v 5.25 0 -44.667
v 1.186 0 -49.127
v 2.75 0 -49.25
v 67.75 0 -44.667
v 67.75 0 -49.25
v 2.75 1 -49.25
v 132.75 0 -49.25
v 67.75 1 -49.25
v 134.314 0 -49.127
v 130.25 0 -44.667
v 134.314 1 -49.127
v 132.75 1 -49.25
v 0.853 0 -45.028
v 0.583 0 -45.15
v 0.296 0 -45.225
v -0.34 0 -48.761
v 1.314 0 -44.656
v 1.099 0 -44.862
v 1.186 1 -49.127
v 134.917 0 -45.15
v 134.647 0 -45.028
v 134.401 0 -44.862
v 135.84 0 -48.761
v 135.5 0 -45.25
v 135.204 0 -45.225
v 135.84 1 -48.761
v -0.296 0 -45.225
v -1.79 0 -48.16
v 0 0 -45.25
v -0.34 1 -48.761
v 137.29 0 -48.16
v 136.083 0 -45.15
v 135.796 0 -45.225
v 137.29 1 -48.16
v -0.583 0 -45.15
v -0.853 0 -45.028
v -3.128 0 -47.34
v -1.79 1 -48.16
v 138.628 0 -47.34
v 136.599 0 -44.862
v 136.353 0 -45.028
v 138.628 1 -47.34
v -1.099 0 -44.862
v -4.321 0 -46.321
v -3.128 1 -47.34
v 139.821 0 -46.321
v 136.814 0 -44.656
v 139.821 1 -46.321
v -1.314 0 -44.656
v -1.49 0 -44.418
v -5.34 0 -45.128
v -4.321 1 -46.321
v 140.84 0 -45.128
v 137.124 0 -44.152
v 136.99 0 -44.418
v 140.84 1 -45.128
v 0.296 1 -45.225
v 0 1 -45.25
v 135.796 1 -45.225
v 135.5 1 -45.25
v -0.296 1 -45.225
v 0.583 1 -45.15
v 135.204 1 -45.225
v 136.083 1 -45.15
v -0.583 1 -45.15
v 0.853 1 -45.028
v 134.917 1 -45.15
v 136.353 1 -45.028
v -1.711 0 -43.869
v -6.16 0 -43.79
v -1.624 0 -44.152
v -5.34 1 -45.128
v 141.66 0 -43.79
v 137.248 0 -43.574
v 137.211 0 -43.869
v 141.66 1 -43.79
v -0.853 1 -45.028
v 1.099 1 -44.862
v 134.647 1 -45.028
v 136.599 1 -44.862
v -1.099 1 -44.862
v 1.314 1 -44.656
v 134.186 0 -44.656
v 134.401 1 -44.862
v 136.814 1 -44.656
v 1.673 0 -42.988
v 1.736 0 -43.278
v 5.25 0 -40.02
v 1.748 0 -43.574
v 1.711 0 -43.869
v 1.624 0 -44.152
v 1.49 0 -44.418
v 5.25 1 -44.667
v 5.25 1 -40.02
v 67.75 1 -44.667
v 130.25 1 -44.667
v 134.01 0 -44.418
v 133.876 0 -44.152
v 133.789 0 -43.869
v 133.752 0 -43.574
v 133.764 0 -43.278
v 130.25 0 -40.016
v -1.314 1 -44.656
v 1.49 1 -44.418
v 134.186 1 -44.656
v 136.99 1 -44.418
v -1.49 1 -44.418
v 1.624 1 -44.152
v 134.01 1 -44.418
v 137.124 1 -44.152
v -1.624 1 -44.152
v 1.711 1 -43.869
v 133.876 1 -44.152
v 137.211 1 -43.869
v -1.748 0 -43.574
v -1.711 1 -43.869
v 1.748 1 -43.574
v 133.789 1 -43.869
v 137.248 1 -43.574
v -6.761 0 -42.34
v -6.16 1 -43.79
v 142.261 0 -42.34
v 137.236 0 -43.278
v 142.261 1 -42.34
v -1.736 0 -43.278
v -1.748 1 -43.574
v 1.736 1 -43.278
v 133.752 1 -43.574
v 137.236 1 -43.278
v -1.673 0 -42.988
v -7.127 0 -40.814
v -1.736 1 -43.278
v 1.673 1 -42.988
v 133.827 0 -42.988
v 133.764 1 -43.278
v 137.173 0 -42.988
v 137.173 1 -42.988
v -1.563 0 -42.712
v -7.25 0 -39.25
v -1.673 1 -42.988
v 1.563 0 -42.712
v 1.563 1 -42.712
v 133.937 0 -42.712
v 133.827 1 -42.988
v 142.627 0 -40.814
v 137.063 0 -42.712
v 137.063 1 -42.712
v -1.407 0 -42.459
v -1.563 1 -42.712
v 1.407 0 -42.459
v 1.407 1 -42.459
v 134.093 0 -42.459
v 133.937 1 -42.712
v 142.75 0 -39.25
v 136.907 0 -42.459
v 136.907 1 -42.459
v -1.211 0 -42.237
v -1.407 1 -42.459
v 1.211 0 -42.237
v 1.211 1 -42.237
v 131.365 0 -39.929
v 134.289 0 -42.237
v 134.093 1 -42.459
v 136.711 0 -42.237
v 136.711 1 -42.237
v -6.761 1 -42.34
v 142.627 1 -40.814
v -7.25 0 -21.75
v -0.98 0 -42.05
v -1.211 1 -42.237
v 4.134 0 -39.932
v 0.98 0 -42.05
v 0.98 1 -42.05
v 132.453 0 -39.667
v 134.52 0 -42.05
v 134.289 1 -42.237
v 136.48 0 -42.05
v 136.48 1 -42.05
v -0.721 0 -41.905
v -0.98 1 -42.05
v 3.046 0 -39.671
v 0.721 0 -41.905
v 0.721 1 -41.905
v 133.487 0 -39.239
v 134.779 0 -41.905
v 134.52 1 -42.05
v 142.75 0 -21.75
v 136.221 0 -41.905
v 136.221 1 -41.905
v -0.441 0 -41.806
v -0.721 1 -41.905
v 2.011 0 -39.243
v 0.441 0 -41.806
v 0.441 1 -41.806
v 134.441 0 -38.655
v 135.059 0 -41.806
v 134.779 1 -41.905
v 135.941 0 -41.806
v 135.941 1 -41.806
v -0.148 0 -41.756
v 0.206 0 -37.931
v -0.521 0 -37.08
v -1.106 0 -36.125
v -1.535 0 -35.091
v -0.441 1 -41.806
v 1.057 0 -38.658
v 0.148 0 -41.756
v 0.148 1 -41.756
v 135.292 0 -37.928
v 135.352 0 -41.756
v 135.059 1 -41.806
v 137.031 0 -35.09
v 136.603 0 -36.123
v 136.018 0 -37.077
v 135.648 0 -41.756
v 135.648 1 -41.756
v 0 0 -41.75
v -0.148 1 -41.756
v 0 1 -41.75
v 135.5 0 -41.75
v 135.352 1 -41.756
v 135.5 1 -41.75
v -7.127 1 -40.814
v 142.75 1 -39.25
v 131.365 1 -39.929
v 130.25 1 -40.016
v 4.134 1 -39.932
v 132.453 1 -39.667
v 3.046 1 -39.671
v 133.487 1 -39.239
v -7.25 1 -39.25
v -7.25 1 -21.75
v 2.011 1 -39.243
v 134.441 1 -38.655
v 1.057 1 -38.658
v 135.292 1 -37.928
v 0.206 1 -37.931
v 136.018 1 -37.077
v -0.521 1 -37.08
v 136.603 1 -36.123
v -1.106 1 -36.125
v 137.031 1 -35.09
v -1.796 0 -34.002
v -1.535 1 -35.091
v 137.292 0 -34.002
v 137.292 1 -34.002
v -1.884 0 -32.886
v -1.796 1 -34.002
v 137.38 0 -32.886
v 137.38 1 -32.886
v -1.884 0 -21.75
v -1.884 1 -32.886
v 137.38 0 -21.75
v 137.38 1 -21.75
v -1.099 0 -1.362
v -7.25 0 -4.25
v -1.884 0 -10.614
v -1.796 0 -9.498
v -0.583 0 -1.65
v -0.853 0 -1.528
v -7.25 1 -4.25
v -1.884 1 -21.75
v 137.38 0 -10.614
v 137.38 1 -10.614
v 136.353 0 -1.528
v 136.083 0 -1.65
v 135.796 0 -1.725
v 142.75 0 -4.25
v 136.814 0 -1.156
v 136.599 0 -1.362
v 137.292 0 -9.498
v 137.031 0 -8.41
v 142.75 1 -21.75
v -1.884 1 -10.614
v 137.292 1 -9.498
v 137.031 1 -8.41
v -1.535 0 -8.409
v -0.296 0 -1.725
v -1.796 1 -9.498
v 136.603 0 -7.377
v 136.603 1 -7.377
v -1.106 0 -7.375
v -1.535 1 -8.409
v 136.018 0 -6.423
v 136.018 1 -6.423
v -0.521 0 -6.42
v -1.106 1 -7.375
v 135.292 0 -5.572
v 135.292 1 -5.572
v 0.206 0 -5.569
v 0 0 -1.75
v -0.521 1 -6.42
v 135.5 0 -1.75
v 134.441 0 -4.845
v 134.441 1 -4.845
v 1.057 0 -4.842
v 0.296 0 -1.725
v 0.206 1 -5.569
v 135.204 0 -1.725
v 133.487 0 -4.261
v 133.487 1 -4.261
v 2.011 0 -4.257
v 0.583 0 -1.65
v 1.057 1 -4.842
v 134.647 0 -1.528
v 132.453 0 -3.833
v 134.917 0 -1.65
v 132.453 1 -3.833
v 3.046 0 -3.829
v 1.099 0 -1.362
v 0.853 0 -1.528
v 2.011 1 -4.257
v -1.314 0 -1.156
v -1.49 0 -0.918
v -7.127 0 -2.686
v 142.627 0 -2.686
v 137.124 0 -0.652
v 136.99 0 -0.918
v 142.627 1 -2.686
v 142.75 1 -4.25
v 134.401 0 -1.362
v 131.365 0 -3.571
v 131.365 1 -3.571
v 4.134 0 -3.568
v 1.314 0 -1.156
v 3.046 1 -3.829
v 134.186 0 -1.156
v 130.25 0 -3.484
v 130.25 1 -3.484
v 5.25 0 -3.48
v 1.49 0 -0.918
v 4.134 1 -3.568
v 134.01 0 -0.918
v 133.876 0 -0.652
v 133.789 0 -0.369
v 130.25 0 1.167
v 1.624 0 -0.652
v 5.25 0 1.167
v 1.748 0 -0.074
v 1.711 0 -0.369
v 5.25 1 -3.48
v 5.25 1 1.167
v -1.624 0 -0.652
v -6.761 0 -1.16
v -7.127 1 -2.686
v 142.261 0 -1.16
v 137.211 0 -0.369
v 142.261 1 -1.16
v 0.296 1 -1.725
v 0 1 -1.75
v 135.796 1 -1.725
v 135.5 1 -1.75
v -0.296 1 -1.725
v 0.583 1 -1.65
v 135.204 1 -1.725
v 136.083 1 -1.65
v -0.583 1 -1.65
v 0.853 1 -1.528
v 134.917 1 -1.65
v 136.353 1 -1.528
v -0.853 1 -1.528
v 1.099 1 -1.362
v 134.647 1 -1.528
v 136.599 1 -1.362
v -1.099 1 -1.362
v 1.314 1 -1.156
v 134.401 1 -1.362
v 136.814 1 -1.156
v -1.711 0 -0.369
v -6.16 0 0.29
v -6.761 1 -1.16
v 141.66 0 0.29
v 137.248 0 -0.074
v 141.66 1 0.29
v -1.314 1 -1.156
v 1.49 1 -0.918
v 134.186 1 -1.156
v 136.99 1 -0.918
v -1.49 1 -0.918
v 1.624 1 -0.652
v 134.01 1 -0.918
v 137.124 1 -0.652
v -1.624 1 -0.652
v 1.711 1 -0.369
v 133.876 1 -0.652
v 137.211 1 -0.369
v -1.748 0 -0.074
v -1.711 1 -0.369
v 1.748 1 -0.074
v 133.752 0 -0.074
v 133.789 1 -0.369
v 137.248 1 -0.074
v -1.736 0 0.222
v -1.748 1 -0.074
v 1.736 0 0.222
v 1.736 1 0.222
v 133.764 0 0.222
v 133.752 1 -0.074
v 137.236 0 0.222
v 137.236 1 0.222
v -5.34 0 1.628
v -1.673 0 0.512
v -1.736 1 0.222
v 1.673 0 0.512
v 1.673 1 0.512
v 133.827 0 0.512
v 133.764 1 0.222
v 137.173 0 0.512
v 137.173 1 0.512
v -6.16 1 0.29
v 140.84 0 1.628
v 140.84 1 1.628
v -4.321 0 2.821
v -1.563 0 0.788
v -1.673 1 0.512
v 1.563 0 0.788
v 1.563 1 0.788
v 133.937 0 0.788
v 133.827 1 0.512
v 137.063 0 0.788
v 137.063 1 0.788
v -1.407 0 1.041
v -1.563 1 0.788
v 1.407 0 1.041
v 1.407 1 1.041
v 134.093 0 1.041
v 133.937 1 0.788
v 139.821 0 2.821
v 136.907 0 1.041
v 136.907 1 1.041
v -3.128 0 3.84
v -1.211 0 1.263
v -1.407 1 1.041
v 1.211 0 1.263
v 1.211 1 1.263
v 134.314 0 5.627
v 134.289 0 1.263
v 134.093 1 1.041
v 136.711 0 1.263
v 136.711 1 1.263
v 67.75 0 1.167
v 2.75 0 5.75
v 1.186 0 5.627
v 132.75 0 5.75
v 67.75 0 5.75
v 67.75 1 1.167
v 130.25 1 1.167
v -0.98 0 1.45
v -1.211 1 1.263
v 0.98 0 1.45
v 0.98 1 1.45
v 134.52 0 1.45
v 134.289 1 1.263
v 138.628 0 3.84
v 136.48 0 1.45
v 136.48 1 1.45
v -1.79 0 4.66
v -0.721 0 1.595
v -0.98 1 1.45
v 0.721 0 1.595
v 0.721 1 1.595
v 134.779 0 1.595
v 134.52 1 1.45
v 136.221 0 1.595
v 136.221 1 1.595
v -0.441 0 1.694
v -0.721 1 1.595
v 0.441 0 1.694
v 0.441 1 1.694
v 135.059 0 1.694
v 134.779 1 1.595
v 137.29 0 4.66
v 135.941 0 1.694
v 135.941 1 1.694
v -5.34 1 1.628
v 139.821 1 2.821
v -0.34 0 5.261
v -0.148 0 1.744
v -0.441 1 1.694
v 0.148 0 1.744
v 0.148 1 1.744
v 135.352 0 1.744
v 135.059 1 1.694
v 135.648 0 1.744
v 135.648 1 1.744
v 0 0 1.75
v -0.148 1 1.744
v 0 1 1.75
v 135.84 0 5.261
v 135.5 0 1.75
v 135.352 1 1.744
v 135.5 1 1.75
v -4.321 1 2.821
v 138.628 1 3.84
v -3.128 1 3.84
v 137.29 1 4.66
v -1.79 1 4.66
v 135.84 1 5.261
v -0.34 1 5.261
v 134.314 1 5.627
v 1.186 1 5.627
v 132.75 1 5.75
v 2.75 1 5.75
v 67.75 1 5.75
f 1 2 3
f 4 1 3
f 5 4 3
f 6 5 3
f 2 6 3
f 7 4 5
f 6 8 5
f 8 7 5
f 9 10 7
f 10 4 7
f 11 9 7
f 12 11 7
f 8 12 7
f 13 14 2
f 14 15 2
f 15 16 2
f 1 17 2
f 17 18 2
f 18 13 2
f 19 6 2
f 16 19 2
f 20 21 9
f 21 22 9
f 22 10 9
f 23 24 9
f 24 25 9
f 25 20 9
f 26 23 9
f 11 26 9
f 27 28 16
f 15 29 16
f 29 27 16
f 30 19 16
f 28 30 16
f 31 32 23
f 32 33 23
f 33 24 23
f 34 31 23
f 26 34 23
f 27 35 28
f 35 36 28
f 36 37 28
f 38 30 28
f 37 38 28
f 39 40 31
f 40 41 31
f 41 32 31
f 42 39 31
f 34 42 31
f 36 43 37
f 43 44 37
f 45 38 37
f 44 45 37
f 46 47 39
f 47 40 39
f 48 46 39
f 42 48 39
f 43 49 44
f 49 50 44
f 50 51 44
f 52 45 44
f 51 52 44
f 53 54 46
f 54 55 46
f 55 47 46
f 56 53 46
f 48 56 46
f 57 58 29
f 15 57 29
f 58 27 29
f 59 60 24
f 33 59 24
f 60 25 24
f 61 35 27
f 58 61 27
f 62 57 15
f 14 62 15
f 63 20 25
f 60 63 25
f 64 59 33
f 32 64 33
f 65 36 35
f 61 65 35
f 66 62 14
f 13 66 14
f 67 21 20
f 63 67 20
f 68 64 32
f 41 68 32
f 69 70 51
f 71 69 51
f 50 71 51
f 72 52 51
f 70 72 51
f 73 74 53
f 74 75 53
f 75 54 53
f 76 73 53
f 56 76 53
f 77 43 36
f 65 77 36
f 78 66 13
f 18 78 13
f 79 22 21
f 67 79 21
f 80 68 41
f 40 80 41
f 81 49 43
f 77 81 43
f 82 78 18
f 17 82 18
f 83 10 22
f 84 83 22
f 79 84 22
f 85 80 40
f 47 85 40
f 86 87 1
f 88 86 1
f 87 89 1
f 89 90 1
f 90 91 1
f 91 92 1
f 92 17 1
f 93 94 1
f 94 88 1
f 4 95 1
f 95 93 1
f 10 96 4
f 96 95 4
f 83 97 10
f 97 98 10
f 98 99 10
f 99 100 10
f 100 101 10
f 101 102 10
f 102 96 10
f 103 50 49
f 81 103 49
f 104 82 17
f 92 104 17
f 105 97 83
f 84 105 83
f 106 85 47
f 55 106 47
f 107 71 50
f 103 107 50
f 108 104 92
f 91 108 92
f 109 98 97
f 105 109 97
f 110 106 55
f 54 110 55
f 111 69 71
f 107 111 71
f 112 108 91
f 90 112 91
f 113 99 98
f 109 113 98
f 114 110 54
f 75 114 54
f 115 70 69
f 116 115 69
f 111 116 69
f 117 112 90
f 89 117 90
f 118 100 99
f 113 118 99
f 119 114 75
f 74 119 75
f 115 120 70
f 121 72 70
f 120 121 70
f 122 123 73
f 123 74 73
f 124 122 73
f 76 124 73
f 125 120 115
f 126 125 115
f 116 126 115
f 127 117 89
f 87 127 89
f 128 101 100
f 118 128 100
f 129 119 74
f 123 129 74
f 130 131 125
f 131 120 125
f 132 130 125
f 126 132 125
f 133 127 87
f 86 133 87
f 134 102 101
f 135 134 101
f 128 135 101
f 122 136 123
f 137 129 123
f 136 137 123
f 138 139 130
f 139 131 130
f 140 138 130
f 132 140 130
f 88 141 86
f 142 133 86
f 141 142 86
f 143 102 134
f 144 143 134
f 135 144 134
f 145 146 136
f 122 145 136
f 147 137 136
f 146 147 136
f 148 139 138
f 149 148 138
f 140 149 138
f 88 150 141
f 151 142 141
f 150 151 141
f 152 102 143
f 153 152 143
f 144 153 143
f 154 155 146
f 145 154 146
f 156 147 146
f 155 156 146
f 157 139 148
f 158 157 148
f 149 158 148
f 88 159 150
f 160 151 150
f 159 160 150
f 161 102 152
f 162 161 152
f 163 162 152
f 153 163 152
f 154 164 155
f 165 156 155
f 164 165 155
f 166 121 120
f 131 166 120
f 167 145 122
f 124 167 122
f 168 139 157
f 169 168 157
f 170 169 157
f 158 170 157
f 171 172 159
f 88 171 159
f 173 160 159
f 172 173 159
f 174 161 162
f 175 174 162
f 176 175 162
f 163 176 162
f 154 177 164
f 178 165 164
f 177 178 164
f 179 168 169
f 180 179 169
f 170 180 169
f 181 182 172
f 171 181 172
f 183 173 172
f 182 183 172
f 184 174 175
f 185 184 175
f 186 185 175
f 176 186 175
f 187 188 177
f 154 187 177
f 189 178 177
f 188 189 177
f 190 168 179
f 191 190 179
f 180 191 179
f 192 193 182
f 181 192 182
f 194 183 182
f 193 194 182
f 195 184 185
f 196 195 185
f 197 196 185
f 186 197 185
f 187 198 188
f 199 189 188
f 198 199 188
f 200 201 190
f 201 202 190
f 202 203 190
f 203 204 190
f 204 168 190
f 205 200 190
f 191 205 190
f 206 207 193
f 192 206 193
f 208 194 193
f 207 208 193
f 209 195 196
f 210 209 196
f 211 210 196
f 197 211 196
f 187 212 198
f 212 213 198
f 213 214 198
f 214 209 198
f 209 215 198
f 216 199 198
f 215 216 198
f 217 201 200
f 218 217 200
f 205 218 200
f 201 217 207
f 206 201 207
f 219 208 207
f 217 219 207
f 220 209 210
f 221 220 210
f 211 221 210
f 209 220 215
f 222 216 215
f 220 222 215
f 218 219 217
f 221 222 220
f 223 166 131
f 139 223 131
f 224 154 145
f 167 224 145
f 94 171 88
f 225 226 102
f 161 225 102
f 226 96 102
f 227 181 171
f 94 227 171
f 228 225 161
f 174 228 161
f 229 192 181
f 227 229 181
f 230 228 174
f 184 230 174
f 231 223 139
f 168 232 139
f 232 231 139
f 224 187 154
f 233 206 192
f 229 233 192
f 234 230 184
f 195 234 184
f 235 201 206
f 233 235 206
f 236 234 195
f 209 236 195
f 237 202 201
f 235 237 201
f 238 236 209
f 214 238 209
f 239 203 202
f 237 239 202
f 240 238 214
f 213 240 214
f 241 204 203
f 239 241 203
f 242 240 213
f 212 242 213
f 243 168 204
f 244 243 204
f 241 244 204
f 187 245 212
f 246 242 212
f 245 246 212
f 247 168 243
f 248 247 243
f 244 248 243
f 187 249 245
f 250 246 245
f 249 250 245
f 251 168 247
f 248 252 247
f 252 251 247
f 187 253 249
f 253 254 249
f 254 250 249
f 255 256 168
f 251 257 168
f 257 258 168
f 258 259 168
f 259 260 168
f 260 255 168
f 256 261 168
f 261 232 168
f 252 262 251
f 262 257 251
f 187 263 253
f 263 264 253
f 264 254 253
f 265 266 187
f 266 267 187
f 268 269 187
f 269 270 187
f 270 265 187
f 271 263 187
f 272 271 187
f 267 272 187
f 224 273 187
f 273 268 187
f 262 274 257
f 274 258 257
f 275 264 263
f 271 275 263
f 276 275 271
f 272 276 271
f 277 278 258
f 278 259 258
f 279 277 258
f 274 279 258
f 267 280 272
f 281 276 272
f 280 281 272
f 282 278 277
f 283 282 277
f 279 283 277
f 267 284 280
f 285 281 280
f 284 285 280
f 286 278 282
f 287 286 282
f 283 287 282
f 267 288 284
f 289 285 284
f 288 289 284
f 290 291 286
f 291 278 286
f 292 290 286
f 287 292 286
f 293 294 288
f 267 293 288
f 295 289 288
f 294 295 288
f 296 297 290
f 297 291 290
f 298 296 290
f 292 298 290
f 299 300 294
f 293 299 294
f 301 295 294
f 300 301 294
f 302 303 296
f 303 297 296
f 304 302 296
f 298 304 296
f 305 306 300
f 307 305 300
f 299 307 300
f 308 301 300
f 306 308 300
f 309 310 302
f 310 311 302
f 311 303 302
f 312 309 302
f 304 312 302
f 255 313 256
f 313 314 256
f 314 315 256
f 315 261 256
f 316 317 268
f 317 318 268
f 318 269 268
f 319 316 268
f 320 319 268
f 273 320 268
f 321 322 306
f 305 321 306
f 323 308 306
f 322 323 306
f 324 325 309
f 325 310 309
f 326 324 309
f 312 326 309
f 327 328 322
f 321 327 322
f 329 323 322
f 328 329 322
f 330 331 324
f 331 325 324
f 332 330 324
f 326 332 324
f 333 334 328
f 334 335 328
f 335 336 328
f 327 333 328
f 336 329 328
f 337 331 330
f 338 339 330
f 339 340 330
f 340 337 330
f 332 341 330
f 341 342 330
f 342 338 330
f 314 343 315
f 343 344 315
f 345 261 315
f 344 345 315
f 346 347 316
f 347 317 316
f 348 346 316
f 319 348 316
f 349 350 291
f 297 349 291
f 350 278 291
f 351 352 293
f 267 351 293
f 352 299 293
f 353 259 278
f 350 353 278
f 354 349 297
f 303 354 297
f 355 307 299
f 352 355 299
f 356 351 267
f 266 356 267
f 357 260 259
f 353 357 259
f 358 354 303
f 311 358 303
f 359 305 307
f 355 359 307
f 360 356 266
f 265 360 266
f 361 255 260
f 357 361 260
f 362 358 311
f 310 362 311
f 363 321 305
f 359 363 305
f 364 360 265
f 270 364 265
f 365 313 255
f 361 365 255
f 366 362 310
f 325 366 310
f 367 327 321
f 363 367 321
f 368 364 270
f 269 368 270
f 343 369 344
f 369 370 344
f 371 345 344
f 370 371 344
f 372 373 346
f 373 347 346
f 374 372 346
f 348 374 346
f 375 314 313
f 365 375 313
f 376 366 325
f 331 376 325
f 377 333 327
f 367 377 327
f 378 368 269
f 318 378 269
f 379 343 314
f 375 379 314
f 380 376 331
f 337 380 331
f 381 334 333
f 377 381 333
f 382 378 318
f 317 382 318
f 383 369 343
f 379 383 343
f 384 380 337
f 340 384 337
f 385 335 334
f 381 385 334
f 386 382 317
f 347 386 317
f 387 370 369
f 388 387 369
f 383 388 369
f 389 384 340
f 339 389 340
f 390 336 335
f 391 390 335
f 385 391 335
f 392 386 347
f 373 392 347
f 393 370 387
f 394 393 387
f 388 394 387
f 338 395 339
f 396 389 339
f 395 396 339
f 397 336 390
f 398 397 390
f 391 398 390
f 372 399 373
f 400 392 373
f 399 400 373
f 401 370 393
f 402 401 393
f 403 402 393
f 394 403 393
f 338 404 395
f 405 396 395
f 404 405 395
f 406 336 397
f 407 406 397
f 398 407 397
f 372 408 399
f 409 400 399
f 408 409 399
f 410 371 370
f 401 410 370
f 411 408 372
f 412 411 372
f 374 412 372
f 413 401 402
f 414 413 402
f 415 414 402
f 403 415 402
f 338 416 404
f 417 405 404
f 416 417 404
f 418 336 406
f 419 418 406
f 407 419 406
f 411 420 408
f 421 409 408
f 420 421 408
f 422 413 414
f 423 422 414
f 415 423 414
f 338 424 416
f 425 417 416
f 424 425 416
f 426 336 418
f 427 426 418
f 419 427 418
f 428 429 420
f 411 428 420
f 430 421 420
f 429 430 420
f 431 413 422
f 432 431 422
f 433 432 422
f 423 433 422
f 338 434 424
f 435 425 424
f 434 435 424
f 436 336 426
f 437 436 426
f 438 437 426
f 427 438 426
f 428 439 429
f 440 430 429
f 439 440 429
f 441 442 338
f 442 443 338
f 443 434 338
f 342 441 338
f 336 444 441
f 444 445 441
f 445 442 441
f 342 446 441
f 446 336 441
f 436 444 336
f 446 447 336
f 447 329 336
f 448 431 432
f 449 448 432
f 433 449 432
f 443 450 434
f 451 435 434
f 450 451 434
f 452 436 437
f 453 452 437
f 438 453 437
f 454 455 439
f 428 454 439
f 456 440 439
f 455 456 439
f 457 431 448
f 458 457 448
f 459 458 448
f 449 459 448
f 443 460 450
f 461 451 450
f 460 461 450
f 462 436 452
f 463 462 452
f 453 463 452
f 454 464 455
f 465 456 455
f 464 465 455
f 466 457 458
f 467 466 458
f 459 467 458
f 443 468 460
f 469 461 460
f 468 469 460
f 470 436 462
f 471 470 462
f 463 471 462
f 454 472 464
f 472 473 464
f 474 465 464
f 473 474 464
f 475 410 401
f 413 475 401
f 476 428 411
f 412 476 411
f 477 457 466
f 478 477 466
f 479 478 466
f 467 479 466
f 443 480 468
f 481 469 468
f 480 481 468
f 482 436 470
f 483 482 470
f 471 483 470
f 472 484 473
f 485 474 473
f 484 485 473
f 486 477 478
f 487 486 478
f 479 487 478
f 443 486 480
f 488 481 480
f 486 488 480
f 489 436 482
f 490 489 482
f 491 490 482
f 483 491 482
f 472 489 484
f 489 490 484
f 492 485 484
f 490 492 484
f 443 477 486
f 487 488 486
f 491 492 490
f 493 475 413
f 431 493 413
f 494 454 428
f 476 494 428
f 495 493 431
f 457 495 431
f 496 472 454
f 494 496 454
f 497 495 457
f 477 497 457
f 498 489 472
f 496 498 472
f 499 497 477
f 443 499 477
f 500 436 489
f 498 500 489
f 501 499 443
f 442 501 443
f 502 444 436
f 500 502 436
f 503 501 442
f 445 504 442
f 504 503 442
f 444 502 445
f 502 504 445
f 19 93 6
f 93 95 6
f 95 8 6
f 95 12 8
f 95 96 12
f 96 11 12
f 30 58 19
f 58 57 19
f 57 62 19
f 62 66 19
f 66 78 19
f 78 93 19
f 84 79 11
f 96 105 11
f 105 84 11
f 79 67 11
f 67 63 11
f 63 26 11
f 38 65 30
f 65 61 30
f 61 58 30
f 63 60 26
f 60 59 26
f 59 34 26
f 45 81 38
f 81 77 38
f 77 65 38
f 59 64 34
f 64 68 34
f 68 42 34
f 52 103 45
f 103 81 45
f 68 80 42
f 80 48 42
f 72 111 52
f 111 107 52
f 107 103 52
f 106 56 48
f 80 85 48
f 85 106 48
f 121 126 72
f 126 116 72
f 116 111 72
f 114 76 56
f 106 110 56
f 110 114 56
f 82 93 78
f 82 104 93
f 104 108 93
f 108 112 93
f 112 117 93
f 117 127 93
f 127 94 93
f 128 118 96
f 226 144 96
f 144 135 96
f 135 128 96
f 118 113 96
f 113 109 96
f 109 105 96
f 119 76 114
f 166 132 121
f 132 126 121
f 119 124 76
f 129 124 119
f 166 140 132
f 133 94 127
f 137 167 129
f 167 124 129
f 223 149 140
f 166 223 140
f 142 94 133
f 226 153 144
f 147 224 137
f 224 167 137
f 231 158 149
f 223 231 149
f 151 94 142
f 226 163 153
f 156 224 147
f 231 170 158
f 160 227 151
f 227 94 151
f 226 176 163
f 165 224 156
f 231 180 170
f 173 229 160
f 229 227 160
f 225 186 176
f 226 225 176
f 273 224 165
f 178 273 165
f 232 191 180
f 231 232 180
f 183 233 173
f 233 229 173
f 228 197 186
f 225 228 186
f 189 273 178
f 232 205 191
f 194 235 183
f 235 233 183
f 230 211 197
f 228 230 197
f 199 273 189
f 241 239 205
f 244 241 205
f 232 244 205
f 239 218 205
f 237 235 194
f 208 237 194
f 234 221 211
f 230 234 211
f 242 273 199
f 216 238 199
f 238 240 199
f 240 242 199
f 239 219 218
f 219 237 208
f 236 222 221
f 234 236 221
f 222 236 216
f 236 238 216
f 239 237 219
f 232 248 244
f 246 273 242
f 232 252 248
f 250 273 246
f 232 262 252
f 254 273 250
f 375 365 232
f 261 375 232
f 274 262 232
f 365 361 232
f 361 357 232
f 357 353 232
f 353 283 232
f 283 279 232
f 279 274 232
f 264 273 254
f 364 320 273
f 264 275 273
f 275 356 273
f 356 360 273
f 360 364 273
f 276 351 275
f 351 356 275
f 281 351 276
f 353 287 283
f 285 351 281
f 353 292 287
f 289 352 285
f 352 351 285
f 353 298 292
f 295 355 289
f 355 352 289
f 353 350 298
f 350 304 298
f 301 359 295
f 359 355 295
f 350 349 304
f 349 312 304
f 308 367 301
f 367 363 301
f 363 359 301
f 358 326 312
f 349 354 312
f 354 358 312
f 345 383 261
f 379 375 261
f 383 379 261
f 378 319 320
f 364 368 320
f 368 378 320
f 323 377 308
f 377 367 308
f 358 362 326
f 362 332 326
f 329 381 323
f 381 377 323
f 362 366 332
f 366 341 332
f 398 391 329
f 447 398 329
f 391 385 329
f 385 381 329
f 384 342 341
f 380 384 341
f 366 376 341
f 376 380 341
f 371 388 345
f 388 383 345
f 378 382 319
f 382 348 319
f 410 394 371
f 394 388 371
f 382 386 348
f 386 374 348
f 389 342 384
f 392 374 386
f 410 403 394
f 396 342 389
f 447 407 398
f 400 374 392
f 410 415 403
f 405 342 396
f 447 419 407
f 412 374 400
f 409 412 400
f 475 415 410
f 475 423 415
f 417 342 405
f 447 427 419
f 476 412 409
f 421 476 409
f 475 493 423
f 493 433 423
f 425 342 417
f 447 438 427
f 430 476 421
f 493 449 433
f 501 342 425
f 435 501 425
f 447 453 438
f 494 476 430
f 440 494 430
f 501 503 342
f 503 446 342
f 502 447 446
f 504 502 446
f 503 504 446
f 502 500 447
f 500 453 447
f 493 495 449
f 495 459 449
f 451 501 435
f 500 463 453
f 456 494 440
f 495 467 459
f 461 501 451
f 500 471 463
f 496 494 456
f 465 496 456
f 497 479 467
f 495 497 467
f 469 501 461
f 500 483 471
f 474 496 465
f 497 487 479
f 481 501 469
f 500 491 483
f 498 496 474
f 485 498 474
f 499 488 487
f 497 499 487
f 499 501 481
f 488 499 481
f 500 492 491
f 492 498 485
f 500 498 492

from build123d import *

# Parameters (mm, degrees)
SKETCH1_R           = 1.75
BOSS_EXTRUDE1_DEPTH = 1


with BuildPart() as part:
    # Sketch1 → Boss-Extrude1 (new body)
    with BuildSketch(Plane(origin=(0, 0, 0), x_dir=(1, 0, 0), z_dir=(0, 1, 0))):
        with BuildLine():
            Line((132.75, -5.75), (2.75, -5.75))
            ThreePointArc((2.75, -5.75), (-4.321067812, -2.821067812), (-7.25, 4.25))
            Line((-7.25, 4.25), (-7.25, 39.25))
            ThreePointArc((-7.25, 39.25), (-4.321067812, 46.321067812), (2.75, 49.25))
            Line((2.75, 49.25), (132.75, 49.25))
            ThreePointArc((132.75, 49.25), (139.821067812, 46.321067812), (142.75, 39.25))
            Line((142.75, 39.25), (142.75, 4.25))
            ThreePointArc((142.75, 4.25), (139.821067812, -2.821067812), (132.75, -5.75))
        make_face()
        with Locations(Location((0, 0, 0), (0, 0, 270))):
            Circle(SKETCH1_R, mode=Mode.SUBTRACT)
        with Locations(Location((0, 43.5, 0), (0, 0, 270))):
            Circle(SKETCH1_R, mode=Mode.SUBTRACT)
        with Locations(Location((135.5, 43.5, 0), (0, 0, 270))):
            Circle(SKETCH1_R, mode=Mode.SUBTRACT)
        with Locations(Location((135.5, 0, 0), (0, 0, 270))):
            Circle(SKETCH1_R, mode=Mode.SUBTRACT)
        with BuildLine():
            Line((130.25, 40.016443463), (130.25, 44.666666667))
            Line((130.25, 44.666666667), (5.25, 44.666666667))
            Line((5.25, 44.666666667), (5.25, 40.020251196))
            ThreePointArc((5.25, 40.020251196), (0.205636176, 37.930807287), (-1.883807733, 32.886443463))
            Line((-1.883807733, 32.886443463), (-1.883807733, 10.613556537))
            ThreePointArc((-1.883807733, 10.613556537), (0.205636176, 5.569192713), (5.25, 3.479748804))
            Line((5.25, 3.479748804), (5.25, -1.166666667))
            Line((5.25, -1.166666667), (130.25, -1.166666667))
            Line((130.25, -1.166666667), (130.25, 3.483556537))
            ThreePointArc((130.25, 3.483556537), (135.29167135, 5.571885187), (137.38, 10.613556537))
            Line((137.38, 10.613556537), (137.38, 32.886443463))
            ThreePointArc((137.38, 32.886443463), (135.29167135, 37.928114813), (130.25, 40.016443463))
        make_face(mode=Mode.SUBTRACT)
    extrude(amount=BOSS_EXTRUDE1_DEPTH)


solid = part.part
